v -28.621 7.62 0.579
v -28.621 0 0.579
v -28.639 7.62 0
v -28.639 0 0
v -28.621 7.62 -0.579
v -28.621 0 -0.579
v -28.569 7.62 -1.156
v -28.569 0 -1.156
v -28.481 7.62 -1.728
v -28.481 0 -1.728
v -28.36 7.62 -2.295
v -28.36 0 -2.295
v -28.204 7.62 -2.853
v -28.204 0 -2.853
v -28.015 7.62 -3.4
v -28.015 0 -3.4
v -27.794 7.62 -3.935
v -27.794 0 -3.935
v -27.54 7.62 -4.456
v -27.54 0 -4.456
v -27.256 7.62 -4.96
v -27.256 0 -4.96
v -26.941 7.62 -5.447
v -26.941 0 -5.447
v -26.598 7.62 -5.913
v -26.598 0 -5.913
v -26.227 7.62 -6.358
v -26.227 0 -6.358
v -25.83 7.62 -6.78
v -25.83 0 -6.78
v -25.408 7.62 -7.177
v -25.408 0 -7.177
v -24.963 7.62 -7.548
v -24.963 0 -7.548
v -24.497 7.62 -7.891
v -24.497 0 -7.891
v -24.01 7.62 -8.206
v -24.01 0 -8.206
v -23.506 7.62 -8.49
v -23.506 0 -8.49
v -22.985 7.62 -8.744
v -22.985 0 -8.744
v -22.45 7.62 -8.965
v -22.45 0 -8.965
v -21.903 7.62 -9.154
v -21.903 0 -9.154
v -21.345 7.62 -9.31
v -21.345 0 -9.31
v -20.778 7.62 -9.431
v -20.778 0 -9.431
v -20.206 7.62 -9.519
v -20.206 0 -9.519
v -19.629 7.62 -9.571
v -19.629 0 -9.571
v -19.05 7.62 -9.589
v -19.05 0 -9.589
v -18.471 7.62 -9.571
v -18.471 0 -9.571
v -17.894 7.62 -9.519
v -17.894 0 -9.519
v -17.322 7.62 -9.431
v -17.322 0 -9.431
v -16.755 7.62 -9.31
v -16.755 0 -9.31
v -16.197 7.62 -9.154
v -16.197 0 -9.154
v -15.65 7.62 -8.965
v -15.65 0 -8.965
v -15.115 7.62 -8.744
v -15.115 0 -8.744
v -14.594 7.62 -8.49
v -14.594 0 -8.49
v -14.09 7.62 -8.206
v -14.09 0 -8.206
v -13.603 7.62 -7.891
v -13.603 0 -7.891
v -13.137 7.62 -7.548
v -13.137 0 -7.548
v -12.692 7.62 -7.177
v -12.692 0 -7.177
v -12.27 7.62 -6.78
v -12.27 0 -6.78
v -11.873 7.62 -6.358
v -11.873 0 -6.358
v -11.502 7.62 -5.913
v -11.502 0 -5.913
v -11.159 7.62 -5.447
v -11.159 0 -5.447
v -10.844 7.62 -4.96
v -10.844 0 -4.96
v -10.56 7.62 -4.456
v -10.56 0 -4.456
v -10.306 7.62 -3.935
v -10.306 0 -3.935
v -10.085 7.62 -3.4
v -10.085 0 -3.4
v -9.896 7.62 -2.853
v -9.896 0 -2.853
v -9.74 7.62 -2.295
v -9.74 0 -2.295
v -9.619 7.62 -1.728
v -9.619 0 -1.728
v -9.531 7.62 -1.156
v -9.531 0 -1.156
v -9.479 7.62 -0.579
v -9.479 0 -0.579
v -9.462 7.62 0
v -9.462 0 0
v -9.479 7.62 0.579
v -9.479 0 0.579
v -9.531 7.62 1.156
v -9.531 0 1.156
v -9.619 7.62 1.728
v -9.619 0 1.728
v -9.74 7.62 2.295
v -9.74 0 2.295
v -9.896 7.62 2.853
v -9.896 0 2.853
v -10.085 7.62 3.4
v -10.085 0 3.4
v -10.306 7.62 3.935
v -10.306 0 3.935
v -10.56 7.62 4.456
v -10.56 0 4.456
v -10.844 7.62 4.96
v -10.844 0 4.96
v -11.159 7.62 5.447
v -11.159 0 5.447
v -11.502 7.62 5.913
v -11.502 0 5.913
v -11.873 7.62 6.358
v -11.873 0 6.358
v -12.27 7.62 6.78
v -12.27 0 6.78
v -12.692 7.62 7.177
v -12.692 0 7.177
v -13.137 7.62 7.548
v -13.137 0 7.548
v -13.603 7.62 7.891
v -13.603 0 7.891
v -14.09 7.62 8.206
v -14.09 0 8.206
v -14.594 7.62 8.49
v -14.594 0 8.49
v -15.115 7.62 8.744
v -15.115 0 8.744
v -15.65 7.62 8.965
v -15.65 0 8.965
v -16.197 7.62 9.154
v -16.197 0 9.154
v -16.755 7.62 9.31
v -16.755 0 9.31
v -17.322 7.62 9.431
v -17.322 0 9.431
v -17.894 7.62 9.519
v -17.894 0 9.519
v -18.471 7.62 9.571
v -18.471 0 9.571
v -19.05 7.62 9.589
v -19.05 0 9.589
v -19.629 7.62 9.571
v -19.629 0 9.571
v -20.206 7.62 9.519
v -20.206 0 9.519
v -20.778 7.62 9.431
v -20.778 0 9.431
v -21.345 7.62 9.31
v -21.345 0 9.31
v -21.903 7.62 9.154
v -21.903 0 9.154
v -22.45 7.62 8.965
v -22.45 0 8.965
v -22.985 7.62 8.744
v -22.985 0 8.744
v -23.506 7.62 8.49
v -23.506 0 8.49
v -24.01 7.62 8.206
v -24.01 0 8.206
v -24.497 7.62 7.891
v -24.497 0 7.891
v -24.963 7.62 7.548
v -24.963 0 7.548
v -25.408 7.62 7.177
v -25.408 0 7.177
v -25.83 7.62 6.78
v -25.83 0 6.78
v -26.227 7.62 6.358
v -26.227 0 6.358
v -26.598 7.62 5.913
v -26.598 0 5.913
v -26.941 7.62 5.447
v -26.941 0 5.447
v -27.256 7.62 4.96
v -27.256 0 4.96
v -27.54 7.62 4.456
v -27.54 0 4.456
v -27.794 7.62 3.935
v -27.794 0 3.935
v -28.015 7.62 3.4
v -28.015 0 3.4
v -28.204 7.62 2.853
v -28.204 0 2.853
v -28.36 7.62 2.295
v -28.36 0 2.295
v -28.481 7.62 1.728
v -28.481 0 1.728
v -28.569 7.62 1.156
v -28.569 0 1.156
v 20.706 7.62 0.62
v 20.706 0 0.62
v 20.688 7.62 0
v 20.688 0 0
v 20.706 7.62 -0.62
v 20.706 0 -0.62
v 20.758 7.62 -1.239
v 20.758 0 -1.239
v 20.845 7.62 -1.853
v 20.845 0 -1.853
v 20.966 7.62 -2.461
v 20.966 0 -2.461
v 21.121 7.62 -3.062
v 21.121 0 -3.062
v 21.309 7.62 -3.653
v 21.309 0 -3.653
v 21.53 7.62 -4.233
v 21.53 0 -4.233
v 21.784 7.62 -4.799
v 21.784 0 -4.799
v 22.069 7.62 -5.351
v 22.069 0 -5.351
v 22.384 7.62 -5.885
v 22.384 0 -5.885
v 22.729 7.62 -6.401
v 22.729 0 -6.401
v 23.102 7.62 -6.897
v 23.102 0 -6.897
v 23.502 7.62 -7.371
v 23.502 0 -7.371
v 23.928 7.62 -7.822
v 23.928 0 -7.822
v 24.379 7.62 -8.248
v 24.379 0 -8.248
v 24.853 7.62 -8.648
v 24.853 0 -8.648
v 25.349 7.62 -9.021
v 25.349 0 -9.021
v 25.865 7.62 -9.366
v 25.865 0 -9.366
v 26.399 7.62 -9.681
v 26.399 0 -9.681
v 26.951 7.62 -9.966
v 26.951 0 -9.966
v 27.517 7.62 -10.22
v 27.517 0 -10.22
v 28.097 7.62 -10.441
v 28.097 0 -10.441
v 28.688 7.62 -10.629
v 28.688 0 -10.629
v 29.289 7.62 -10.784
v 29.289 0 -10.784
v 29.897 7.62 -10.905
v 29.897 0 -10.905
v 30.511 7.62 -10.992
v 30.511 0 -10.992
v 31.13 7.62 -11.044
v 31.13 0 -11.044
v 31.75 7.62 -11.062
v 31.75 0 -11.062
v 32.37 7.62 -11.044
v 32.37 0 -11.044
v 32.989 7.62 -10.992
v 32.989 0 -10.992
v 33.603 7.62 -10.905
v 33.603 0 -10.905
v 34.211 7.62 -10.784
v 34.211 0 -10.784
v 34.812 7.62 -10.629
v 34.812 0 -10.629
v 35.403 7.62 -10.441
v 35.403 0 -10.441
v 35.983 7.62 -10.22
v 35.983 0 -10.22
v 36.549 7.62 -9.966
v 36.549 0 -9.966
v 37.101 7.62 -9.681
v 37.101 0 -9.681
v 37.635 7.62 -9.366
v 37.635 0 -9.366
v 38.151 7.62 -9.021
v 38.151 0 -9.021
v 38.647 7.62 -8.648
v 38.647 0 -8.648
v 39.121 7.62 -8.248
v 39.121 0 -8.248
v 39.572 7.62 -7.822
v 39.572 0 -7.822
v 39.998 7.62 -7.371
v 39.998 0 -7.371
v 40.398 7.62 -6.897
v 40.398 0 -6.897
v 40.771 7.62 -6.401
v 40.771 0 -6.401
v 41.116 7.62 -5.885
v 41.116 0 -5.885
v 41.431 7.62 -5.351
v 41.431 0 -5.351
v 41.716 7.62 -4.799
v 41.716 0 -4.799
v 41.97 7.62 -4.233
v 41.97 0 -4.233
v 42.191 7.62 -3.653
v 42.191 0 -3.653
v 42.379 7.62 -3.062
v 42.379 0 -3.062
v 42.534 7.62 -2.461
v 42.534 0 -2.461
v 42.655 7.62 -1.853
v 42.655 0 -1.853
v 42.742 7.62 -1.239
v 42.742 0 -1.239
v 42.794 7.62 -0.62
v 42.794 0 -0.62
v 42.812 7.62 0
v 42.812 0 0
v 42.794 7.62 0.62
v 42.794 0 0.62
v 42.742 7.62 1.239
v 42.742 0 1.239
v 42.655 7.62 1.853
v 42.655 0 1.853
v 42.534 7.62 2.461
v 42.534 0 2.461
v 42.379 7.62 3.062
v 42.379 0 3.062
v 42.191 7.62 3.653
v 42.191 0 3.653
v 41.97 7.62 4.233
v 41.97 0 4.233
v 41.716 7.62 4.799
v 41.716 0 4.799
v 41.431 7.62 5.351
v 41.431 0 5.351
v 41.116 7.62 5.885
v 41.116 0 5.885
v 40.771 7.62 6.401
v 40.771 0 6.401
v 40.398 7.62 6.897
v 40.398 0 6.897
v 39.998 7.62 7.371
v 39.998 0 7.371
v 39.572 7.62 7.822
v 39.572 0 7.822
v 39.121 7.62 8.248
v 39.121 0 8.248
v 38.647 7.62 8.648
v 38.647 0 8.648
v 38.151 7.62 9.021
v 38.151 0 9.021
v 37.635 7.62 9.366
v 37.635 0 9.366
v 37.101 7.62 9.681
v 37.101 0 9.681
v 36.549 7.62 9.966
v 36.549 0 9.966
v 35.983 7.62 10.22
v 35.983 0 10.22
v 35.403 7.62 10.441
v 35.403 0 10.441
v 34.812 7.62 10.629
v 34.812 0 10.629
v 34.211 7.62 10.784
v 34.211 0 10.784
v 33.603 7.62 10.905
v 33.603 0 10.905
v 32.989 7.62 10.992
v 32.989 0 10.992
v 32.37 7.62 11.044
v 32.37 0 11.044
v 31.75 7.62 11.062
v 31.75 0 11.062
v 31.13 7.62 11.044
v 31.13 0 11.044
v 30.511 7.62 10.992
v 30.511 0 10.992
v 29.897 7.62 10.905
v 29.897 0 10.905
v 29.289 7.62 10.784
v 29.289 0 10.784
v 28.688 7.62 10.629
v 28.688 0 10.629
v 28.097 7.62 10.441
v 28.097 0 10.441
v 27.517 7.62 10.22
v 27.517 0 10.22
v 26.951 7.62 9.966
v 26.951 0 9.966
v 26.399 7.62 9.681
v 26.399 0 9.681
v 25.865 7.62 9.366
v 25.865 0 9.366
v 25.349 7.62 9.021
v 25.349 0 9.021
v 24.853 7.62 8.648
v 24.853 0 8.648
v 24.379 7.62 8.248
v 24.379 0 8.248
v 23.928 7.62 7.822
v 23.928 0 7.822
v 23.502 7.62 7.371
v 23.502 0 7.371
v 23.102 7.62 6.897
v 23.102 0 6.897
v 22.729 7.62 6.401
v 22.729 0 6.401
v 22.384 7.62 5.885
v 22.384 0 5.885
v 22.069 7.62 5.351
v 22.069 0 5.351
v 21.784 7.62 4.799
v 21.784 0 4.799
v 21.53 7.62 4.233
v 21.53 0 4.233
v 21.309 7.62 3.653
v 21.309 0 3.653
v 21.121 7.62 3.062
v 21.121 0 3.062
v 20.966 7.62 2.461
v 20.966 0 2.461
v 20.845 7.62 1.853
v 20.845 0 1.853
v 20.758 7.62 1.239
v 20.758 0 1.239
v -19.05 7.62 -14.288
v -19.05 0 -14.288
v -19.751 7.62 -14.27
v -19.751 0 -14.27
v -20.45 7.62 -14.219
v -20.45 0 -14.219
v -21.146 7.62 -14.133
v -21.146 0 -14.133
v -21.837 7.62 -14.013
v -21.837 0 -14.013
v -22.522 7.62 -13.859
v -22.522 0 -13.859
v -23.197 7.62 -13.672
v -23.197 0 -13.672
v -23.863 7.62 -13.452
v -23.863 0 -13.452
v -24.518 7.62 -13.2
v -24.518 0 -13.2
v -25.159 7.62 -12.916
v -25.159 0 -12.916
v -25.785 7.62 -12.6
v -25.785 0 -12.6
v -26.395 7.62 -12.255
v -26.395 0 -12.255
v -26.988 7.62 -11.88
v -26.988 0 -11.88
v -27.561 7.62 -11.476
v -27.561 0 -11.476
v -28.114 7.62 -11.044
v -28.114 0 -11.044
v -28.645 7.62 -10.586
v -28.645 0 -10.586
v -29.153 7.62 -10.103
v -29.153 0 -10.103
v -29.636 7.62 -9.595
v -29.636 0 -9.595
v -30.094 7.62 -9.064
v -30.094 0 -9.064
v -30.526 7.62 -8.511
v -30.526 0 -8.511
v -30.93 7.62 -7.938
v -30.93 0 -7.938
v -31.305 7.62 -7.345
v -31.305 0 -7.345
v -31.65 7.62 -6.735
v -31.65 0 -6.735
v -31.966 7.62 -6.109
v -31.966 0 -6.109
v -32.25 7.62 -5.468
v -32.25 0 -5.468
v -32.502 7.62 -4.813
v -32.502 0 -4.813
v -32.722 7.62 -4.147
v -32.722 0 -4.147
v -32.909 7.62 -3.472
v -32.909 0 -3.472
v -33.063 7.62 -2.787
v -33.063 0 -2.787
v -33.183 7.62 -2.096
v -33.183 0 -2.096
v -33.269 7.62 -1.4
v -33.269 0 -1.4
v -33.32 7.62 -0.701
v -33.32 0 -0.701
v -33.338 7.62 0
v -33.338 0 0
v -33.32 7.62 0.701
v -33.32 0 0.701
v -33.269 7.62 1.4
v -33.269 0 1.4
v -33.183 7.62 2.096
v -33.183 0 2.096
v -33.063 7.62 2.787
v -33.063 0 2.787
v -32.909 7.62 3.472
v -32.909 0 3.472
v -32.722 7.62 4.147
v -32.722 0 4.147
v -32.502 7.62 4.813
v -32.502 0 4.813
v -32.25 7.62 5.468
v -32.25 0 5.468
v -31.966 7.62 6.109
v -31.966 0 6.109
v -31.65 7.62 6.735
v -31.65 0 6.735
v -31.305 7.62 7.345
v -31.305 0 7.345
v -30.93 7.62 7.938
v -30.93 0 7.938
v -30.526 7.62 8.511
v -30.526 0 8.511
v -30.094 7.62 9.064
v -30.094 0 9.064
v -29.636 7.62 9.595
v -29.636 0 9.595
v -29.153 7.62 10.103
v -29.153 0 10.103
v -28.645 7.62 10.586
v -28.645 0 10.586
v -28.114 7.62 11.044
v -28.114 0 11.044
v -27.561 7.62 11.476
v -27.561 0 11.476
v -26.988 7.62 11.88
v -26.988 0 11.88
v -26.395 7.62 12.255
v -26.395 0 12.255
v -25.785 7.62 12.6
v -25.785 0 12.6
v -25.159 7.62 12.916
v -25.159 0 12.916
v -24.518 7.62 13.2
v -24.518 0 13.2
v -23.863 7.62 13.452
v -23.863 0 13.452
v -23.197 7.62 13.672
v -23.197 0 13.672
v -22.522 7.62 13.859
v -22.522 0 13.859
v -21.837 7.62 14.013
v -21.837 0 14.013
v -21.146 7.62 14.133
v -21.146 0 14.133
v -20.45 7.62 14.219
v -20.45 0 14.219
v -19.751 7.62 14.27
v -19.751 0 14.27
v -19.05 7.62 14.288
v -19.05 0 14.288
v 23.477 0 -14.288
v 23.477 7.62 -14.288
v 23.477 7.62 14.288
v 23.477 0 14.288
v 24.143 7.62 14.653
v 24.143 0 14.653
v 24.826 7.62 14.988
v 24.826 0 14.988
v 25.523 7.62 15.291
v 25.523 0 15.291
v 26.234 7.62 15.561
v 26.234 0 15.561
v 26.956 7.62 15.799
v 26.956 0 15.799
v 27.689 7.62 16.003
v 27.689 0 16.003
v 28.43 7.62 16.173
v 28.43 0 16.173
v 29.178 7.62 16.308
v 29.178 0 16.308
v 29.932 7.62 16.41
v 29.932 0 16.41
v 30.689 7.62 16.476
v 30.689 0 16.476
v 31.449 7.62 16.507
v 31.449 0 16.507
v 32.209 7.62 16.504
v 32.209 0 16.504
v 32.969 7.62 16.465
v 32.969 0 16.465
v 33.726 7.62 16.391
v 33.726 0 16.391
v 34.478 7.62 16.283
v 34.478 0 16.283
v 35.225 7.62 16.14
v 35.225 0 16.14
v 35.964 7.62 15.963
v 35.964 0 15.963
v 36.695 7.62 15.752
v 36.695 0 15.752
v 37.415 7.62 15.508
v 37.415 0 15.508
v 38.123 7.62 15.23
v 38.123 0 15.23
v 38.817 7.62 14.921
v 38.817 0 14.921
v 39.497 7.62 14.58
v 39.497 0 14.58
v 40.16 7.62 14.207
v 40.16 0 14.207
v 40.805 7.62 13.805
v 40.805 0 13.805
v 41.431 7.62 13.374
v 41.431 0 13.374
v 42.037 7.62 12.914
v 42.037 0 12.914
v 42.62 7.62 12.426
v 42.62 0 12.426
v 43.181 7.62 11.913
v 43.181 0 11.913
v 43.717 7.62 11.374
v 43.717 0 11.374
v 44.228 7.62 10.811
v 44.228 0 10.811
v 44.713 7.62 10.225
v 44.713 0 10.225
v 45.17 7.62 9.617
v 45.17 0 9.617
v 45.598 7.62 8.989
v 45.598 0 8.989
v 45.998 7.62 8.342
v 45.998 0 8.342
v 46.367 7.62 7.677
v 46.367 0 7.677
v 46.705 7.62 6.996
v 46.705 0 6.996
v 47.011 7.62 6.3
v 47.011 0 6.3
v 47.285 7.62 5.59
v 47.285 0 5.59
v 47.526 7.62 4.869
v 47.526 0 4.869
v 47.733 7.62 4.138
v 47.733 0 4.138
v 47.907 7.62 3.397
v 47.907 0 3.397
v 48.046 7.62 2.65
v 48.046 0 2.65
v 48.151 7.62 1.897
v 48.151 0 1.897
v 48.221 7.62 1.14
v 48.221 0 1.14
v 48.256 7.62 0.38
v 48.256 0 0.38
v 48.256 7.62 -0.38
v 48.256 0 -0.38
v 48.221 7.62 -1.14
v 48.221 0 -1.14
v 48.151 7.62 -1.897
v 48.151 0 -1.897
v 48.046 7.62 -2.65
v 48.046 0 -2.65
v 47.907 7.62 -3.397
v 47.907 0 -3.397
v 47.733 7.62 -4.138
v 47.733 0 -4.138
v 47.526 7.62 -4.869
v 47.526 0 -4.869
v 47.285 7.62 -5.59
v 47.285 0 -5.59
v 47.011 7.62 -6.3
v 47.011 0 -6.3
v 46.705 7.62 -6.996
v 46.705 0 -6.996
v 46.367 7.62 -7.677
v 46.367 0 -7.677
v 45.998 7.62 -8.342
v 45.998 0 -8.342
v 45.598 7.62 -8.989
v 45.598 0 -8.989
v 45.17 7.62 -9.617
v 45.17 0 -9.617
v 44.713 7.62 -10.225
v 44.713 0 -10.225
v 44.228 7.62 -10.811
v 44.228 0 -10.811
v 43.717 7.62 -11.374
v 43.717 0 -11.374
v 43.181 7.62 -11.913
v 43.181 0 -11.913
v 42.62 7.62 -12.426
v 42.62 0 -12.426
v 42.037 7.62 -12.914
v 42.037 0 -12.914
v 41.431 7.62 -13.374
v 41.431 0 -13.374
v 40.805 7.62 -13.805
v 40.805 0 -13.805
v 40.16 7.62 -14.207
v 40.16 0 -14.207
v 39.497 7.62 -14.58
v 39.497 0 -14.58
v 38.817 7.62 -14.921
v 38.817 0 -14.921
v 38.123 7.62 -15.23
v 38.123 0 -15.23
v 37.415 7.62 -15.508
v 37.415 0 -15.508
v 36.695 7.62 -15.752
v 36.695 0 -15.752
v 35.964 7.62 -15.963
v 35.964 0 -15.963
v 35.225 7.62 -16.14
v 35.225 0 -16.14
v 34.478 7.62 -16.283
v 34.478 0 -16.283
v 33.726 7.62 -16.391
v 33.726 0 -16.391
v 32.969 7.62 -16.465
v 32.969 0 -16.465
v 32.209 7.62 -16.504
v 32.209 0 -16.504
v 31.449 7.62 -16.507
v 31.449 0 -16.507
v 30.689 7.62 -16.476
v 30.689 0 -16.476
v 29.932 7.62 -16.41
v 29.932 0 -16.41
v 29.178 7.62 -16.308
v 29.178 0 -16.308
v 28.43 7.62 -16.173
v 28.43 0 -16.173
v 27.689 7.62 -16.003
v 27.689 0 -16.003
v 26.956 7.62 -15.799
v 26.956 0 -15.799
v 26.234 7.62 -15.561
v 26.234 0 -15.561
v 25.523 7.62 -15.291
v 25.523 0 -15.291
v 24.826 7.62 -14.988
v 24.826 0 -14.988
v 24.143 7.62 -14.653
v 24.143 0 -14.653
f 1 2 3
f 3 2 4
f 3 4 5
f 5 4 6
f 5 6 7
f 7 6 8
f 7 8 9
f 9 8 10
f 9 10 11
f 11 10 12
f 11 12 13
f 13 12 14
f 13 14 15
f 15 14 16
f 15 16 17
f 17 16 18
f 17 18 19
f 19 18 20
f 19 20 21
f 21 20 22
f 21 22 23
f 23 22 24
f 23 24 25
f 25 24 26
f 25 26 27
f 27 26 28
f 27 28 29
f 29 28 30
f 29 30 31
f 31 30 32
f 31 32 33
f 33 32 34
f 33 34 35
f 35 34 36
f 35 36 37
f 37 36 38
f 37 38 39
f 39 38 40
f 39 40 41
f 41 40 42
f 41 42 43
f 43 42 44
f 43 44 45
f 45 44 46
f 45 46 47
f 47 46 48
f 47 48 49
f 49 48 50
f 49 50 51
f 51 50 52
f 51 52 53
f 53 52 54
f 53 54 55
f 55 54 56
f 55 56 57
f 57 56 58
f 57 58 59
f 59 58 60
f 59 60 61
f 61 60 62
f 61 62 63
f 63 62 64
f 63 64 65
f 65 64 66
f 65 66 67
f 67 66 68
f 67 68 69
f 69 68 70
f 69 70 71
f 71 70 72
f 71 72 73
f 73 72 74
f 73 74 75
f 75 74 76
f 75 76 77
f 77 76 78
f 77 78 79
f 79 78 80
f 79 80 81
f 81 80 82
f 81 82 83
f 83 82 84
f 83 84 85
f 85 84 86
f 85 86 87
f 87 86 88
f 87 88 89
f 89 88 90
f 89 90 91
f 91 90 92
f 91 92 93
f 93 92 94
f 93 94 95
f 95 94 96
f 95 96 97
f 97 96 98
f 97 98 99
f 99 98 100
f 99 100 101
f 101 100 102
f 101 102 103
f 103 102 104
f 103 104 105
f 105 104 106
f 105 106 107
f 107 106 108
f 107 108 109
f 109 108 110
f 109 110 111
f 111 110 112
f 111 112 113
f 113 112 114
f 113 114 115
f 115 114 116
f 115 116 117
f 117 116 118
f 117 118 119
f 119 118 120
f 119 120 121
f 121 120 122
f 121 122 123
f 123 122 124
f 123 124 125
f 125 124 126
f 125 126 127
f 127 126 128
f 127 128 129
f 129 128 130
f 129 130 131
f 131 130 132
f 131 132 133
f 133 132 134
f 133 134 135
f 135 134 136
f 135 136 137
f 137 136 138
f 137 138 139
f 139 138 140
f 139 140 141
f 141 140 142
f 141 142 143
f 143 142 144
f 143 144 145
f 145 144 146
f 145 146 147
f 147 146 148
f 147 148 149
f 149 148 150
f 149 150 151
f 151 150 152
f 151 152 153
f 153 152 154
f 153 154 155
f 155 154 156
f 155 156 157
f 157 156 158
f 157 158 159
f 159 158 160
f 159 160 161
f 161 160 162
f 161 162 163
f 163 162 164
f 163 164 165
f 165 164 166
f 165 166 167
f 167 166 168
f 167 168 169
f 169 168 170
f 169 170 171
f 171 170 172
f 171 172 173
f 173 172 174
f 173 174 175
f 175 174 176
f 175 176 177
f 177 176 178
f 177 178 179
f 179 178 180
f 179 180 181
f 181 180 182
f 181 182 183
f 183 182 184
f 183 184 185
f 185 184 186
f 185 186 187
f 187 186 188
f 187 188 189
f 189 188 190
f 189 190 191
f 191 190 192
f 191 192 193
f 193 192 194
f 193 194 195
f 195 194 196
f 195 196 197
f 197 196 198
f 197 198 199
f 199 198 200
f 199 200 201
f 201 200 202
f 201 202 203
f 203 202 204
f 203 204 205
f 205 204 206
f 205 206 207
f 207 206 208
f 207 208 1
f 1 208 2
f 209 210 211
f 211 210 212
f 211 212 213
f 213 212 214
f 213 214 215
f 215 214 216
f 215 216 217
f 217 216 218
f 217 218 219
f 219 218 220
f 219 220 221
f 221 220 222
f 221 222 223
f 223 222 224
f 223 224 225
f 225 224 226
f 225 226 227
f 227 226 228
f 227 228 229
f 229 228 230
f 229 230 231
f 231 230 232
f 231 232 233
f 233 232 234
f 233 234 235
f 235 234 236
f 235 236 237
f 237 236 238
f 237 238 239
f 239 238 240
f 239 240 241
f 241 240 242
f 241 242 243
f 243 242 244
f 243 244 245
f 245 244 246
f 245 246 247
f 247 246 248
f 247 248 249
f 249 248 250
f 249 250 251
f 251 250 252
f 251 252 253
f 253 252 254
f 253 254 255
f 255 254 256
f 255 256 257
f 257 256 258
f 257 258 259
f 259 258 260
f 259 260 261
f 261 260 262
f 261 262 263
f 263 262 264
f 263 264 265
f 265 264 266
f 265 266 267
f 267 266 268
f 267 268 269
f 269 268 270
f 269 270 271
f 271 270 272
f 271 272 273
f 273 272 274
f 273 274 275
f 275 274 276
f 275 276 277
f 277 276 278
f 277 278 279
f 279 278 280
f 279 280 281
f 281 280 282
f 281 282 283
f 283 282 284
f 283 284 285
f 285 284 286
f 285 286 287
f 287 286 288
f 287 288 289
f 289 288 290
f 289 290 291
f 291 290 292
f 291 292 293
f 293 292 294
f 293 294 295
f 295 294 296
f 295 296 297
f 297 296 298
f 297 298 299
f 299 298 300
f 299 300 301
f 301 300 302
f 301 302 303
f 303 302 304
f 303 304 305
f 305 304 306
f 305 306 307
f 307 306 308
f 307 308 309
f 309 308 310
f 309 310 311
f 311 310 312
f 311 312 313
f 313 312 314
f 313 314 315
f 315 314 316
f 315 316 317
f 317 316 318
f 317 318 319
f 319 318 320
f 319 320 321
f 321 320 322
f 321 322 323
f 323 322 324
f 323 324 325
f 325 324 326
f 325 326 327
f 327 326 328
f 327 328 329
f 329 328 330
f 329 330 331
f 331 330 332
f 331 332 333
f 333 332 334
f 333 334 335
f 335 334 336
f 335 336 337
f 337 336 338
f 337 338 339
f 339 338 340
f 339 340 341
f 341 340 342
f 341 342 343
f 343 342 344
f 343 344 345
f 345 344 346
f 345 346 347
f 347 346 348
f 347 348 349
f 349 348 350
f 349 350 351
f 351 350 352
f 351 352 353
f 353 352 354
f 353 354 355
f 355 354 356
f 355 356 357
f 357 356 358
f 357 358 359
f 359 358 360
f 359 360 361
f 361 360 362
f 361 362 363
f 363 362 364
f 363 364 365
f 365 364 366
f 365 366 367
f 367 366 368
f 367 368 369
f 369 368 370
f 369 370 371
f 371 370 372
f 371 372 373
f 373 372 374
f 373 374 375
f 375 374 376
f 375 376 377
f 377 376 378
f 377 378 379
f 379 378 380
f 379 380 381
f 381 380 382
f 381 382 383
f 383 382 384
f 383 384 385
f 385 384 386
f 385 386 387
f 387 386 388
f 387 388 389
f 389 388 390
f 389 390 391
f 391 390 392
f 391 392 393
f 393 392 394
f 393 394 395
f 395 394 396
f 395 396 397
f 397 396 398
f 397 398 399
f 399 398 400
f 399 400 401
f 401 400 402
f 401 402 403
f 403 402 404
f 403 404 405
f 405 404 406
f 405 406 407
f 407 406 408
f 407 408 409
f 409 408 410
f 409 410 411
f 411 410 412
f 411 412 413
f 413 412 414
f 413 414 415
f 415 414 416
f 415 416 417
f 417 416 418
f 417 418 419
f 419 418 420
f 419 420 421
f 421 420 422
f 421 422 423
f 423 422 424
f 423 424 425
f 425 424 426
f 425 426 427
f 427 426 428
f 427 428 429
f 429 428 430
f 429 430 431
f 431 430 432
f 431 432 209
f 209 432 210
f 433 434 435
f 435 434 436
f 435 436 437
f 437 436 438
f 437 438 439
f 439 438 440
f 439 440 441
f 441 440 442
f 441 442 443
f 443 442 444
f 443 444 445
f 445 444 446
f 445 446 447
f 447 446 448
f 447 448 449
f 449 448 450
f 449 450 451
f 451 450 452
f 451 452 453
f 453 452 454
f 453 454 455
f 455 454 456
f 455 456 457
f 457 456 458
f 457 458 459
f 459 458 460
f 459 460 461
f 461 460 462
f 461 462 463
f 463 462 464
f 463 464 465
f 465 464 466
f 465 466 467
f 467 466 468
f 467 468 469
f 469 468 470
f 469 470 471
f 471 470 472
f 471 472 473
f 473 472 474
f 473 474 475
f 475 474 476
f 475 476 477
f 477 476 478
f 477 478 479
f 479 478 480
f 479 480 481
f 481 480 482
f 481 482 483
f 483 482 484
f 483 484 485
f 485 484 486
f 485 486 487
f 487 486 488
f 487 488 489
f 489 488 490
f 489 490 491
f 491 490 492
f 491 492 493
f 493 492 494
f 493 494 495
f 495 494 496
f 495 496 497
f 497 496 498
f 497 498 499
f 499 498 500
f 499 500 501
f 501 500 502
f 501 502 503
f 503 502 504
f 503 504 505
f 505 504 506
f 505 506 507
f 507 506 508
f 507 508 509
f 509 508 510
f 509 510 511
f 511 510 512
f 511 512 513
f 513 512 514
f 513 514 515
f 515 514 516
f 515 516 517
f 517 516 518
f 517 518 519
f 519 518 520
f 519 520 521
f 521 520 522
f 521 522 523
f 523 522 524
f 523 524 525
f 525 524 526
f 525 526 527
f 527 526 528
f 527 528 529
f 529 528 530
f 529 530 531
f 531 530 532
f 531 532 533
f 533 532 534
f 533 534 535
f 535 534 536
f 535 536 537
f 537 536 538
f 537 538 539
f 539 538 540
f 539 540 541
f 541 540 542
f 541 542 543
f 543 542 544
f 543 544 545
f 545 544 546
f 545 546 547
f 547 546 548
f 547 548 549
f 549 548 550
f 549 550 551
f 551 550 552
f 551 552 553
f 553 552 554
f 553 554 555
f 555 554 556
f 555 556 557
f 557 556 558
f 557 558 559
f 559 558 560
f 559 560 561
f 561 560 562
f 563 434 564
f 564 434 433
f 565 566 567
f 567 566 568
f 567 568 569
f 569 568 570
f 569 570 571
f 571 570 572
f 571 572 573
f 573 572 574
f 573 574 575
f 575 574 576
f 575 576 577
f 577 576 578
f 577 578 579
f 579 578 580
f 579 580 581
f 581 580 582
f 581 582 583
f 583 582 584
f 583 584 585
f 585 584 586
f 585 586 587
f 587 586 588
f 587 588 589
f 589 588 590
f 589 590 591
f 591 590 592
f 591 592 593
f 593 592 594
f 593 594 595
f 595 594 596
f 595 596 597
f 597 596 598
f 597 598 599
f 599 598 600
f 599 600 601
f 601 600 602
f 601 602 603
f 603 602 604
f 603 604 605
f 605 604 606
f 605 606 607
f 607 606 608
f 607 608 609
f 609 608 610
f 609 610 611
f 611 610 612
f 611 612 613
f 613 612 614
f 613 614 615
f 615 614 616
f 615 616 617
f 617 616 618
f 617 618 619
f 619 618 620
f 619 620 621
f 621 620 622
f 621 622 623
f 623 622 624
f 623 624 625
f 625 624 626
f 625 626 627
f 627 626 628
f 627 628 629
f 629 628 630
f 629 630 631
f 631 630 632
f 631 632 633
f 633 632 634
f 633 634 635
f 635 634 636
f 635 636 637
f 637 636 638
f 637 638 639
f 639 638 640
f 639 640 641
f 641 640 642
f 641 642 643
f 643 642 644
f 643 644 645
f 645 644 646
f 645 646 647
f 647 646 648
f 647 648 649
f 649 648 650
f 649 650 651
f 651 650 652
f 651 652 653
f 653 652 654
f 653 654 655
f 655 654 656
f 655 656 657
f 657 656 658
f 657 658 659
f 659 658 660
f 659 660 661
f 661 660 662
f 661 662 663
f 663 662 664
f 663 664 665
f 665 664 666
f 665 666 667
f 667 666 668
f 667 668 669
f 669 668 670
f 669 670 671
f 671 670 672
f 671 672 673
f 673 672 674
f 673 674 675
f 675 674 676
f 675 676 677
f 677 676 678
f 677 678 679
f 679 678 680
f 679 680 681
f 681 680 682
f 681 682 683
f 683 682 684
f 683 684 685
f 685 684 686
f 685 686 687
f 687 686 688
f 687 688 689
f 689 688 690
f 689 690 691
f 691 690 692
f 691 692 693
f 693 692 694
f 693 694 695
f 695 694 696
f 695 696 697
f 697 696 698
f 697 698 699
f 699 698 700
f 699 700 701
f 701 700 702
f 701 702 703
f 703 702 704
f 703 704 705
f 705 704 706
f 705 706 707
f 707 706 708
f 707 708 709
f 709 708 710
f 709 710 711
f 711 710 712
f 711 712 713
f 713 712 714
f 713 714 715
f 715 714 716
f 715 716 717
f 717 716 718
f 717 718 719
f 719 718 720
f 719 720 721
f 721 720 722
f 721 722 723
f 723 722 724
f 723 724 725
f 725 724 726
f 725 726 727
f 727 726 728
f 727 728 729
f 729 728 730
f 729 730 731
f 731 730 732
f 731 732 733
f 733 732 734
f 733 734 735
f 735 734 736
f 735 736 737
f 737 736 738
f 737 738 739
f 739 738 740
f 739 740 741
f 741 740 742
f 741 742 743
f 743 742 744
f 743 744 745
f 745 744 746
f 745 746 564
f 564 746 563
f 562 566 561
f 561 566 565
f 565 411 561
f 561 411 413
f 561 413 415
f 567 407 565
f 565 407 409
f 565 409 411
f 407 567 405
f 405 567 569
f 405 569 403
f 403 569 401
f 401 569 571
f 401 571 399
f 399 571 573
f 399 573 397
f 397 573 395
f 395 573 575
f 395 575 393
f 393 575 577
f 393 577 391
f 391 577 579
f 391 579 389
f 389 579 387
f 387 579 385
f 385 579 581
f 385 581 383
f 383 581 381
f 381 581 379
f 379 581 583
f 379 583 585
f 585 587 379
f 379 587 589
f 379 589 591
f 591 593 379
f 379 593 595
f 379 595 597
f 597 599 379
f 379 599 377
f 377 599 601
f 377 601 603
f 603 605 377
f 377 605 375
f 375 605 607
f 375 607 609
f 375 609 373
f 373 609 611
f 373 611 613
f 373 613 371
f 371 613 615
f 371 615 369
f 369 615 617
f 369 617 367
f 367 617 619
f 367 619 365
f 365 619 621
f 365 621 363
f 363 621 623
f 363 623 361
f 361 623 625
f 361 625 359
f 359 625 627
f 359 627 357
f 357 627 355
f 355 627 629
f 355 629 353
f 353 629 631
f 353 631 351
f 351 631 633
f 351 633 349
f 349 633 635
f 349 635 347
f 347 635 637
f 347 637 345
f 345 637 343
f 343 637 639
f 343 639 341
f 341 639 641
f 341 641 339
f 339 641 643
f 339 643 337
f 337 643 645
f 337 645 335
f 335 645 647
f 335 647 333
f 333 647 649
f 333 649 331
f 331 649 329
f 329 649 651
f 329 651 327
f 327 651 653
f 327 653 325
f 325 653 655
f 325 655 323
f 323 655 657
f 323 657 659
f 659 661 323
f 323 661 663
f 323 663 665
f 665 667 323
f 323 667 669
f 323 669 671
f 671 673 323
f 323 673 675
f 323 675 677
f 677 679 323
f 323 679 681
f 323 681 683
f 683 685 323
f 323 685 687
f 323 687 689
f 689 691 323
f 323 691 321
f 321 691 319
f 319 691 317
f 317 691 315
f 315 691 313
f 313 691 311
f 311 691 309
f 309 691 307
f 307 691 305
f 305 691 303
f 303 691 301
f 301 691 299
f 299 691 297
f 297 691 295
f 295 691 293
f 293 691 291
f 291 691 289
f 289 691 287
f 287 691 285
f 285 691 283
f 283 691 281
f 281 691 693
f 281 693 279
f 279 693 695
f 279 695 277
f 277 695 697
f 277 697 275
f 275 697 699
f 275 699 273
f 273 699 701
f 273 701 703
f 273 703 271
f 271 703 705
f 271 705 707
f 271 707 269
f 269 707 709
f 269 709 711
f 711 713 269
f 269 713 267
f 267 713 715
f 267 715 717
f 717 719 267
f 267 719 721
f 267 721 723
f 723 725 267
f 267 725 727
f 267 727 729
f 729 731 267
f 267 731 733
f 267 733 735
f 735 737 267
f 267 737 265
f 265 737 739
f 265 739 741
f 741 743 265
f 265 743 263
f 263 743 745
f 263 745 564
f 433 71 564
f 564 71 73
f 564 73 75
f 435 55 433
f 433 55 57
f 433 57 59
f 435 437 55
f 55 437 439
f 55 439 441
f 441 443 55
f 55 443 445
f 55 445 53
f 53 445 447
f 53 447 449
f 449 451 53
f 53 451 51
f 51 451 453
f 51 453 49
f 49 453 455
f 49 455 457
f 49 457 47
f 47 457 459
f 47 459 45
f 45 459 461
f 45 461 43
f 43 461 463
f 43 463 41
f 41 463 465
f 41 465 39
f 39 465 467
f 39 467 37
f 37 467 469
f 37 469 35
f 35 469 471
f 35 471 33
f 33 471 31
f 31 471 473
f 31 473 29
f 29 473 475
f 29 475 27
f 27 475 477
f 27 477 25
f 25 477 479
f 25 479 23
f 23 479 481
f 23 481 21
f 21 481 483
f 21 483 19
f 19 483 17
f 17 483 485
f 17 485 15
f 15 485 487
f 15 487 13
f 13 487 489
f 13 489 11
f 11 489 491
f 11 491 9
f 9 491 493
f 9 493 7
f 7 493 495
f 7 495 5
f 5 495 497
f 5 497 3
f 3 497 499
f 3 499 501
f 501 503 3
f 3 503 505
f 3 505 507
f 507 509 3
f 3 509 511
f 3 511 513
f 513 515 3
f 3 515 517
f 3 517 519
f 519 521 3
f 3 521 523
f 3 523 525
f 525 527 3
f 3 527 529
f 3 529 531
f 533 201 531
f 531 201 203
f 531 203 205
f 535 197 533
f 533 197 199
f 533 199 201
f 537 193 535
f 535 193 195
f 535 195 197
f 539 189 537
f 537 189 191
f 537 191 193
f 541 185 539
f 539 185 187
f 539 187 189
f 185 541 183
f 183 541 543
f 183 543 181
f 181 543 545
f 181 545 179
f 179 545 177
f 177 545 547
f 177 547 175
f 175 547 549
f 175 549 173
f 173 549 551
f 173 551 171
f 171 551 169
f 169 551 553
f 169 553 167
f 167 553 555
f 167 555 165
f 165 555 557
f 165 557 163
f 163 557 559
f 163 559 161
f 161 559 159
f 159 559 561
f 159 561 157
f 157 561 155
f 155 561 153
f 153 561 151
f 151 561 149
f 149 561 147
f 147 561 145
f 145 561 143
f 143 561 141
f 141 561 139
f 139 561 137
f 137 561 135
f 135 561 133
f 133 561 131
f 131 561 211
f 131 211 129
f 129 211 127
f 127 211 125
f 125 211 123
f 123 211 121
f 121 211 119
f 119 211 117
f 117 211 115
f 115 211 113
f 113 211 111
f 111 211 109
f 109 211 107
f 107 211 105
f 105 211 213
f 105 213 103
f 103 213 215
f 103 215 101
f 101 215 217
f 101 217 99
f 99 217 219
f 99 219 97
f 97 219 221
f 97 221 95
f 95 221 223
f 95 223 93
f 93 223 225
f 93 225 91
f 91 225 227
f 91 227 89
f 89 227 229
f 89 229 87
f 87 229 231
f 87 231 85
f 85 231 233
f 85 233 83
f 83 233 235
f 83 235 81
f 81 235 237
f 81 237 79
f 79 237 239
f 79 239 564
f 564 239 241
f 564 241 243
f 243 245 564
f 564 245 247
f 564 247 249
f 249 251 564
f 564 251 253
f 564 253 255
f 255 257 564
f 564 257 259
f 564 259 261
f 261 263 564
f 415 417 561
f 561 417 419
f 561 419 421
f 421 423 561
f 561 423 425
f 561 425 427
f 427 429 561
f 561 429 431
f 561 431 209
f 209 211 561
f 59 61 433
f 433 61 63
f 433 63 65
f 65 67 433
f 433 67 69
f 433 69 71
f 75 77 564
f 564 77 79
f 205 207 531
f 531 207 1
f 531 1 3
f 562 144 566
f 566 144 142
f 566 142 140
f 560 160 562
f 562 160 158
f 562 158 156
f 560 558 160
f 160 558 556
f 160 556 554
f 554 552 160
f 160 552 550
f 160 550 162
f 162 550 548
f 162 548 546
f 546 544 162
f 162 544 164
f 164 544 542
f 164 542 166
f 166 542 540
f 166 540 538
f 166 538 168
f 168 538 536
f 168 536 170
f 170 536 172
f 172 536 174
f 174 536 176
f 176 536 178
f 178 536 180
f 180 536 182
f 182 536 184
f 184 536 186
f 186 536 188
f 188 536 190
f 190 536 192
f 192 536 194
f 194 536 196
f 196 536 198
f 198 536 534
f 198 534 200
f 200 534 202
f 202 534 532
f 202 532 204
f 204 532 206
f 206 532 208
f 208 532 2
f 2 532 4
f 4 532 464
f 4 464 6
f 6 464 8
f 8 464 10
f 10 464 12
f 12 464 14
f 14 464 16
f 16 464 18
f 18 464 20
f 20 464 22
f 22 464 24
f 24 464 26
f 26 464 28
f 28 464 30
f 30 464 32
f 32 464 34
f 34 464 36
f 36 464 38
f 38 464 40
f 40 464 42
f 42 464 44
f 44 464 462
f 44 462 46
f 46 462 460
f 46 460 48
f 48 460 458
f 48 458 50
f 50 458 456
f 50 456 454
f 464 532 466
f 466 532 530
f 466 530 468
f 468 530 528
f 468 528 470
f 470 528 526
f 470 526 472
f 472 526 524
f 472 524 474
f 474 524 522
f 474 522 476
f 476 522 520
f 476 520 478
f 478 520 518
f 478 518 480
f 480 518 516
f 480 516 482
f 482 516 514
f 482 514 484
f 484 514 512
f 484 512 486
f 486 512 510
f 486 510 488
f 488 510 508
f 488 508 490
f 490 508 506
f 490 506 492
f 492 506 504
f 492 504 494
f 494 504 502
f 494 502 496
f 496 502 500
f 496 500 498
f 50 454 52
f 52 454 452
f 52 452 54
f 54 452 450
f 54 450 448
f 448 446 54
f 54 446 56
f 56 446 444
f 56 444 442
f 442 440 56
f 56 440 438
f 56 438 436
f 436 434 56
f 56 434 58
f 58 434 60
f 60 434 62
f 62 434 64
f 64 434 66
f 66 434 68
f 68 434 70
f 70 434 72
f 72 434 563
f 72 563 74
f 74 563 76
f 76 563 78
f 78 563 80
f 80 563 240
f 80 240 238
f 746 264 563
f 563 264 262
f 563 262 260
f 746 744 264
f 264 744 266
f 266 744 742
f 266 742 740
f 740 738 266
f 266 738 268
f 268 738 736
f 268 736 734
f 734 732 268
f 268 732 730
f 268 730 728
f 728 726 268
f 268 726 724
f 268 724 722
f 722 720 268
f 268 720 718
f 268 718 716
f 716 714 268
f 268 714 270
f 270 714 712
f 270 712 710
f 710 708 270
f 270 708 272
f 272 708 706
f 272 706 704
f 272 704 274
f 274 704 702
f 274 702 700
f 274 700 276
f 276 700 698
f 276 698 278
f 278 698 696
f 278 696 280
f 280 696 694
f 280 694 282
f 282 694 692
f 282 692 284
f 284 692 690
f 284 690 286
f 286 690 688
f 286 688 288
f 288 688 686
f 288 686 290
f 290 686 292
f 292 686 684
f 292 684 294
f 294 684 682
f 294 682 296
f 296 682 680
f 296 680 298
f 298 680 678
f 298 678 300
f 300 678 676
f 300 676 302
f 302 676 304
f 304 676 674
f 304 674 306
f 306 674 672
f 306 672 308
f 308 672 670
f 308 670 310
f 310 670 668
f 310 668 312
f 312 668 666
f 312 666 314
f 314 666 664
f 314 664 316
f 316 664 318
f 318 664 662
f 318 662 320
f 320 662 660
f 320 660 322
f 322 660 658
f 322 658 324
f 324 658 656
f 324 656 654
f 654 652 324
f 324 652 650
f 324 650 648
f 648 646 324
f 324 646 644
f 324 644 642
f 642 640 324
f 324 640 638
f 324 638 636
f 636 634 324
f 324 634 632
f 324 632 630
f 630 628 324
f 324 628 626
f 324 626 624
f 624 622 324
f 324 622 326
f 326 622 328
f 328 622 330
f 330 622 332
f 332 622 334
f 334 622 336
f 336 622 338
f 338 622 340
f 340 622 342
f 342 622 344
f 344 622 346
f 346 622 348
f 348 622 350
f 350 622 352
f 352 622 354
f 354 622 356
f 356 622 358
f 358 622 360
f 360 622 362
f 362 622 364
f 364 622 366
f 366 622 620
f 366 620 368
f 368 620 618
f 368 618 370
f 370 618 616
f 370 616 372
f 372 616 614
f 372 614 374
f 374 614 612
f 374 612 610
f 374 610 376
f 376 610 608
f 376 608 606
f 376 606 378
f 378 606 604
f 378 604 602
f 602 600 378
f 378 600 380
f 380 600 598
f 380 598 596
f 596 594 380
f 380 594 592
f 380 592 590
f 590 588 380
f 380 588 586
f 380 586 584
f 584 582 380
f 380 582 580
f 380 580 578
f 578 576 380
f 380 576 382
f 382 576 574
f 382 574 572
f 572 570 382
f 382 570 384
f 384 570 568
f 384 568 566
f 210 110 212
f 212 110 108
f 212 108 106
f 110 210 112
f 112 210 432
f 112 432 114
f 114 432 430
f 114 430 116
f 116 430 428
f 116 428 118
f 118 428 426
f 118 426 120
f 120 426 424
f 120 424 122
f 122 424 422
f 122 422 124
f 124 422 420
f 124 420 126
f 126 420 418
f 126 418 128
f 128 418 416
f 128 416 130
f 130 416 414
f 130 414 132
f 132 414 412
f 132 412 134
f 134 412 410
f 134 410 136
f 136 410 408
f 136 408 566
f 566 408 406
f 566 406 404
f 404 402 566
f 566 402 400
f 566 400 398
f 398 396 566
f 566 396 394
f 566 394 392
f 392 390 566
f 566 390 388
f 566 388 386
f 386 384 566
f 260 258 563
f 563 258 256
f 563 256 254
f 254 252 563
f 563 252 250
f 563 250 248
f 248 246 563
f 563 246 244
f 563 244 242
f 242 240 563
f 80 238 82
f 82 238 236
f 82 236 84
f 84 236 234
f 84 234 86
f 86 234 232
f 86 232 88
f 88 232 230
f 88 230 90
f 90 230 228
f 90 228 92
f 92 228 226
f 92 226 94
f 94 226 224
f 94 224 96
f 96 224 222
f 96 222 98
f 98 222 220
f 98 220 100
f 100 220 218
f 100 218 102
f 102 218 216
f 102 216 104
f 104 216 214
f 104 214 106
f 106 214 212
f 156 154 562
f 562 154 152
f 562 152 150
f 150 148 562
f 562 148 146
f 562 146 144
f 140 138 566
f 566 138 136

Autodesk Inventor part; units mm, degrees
ref_plane "YZ Plane" through (0, 0, 0) normal (1, 0, 0) x (0, 1, 0)
ref_plane "XZ Plane" through (0, 0, 0) normal (0, 1, 0) x (-1, 0, 0)
ref_plane "XY Plane" through (0, 0, 0) normal (0, 0, 1) x (1, 0, 0)
sketch "Sketch1" plane through (0, 0, 0) normal (0, 1, 0) x (-1, 0, 0)
  arc A0 (-23.4767, 14.2875) -> (-23.4767, -14.2875) centre (-31.75, 0) ccw
  circle A1 centre (-31.75, 0) radius 11.0617
  circle A2 centre (19.05, 0) radius 9.5885
  arc A3 (19.05, -14.2875) -> (19.05, 14.2875) centre (19.05, 0) ccw
  line L0 (19.05, -14.2875) -> (-23.4767, -14.2875)
  line L1 (19.05, 14.2875) -> (-23.4767, 14.2875)
  point P0 (0, 0)
  point P1 (12.5046, 12.7)
  point P2 (-21.2006, -12.7)
  dimension "d11" = 19.177
  dimension "d14" = 28.575
  dimension "d15" = 22.1234
extrude "Extrusion1" add sketch "Sketch1" along normal blind 7.62
properties part number "Connecting Rod"
